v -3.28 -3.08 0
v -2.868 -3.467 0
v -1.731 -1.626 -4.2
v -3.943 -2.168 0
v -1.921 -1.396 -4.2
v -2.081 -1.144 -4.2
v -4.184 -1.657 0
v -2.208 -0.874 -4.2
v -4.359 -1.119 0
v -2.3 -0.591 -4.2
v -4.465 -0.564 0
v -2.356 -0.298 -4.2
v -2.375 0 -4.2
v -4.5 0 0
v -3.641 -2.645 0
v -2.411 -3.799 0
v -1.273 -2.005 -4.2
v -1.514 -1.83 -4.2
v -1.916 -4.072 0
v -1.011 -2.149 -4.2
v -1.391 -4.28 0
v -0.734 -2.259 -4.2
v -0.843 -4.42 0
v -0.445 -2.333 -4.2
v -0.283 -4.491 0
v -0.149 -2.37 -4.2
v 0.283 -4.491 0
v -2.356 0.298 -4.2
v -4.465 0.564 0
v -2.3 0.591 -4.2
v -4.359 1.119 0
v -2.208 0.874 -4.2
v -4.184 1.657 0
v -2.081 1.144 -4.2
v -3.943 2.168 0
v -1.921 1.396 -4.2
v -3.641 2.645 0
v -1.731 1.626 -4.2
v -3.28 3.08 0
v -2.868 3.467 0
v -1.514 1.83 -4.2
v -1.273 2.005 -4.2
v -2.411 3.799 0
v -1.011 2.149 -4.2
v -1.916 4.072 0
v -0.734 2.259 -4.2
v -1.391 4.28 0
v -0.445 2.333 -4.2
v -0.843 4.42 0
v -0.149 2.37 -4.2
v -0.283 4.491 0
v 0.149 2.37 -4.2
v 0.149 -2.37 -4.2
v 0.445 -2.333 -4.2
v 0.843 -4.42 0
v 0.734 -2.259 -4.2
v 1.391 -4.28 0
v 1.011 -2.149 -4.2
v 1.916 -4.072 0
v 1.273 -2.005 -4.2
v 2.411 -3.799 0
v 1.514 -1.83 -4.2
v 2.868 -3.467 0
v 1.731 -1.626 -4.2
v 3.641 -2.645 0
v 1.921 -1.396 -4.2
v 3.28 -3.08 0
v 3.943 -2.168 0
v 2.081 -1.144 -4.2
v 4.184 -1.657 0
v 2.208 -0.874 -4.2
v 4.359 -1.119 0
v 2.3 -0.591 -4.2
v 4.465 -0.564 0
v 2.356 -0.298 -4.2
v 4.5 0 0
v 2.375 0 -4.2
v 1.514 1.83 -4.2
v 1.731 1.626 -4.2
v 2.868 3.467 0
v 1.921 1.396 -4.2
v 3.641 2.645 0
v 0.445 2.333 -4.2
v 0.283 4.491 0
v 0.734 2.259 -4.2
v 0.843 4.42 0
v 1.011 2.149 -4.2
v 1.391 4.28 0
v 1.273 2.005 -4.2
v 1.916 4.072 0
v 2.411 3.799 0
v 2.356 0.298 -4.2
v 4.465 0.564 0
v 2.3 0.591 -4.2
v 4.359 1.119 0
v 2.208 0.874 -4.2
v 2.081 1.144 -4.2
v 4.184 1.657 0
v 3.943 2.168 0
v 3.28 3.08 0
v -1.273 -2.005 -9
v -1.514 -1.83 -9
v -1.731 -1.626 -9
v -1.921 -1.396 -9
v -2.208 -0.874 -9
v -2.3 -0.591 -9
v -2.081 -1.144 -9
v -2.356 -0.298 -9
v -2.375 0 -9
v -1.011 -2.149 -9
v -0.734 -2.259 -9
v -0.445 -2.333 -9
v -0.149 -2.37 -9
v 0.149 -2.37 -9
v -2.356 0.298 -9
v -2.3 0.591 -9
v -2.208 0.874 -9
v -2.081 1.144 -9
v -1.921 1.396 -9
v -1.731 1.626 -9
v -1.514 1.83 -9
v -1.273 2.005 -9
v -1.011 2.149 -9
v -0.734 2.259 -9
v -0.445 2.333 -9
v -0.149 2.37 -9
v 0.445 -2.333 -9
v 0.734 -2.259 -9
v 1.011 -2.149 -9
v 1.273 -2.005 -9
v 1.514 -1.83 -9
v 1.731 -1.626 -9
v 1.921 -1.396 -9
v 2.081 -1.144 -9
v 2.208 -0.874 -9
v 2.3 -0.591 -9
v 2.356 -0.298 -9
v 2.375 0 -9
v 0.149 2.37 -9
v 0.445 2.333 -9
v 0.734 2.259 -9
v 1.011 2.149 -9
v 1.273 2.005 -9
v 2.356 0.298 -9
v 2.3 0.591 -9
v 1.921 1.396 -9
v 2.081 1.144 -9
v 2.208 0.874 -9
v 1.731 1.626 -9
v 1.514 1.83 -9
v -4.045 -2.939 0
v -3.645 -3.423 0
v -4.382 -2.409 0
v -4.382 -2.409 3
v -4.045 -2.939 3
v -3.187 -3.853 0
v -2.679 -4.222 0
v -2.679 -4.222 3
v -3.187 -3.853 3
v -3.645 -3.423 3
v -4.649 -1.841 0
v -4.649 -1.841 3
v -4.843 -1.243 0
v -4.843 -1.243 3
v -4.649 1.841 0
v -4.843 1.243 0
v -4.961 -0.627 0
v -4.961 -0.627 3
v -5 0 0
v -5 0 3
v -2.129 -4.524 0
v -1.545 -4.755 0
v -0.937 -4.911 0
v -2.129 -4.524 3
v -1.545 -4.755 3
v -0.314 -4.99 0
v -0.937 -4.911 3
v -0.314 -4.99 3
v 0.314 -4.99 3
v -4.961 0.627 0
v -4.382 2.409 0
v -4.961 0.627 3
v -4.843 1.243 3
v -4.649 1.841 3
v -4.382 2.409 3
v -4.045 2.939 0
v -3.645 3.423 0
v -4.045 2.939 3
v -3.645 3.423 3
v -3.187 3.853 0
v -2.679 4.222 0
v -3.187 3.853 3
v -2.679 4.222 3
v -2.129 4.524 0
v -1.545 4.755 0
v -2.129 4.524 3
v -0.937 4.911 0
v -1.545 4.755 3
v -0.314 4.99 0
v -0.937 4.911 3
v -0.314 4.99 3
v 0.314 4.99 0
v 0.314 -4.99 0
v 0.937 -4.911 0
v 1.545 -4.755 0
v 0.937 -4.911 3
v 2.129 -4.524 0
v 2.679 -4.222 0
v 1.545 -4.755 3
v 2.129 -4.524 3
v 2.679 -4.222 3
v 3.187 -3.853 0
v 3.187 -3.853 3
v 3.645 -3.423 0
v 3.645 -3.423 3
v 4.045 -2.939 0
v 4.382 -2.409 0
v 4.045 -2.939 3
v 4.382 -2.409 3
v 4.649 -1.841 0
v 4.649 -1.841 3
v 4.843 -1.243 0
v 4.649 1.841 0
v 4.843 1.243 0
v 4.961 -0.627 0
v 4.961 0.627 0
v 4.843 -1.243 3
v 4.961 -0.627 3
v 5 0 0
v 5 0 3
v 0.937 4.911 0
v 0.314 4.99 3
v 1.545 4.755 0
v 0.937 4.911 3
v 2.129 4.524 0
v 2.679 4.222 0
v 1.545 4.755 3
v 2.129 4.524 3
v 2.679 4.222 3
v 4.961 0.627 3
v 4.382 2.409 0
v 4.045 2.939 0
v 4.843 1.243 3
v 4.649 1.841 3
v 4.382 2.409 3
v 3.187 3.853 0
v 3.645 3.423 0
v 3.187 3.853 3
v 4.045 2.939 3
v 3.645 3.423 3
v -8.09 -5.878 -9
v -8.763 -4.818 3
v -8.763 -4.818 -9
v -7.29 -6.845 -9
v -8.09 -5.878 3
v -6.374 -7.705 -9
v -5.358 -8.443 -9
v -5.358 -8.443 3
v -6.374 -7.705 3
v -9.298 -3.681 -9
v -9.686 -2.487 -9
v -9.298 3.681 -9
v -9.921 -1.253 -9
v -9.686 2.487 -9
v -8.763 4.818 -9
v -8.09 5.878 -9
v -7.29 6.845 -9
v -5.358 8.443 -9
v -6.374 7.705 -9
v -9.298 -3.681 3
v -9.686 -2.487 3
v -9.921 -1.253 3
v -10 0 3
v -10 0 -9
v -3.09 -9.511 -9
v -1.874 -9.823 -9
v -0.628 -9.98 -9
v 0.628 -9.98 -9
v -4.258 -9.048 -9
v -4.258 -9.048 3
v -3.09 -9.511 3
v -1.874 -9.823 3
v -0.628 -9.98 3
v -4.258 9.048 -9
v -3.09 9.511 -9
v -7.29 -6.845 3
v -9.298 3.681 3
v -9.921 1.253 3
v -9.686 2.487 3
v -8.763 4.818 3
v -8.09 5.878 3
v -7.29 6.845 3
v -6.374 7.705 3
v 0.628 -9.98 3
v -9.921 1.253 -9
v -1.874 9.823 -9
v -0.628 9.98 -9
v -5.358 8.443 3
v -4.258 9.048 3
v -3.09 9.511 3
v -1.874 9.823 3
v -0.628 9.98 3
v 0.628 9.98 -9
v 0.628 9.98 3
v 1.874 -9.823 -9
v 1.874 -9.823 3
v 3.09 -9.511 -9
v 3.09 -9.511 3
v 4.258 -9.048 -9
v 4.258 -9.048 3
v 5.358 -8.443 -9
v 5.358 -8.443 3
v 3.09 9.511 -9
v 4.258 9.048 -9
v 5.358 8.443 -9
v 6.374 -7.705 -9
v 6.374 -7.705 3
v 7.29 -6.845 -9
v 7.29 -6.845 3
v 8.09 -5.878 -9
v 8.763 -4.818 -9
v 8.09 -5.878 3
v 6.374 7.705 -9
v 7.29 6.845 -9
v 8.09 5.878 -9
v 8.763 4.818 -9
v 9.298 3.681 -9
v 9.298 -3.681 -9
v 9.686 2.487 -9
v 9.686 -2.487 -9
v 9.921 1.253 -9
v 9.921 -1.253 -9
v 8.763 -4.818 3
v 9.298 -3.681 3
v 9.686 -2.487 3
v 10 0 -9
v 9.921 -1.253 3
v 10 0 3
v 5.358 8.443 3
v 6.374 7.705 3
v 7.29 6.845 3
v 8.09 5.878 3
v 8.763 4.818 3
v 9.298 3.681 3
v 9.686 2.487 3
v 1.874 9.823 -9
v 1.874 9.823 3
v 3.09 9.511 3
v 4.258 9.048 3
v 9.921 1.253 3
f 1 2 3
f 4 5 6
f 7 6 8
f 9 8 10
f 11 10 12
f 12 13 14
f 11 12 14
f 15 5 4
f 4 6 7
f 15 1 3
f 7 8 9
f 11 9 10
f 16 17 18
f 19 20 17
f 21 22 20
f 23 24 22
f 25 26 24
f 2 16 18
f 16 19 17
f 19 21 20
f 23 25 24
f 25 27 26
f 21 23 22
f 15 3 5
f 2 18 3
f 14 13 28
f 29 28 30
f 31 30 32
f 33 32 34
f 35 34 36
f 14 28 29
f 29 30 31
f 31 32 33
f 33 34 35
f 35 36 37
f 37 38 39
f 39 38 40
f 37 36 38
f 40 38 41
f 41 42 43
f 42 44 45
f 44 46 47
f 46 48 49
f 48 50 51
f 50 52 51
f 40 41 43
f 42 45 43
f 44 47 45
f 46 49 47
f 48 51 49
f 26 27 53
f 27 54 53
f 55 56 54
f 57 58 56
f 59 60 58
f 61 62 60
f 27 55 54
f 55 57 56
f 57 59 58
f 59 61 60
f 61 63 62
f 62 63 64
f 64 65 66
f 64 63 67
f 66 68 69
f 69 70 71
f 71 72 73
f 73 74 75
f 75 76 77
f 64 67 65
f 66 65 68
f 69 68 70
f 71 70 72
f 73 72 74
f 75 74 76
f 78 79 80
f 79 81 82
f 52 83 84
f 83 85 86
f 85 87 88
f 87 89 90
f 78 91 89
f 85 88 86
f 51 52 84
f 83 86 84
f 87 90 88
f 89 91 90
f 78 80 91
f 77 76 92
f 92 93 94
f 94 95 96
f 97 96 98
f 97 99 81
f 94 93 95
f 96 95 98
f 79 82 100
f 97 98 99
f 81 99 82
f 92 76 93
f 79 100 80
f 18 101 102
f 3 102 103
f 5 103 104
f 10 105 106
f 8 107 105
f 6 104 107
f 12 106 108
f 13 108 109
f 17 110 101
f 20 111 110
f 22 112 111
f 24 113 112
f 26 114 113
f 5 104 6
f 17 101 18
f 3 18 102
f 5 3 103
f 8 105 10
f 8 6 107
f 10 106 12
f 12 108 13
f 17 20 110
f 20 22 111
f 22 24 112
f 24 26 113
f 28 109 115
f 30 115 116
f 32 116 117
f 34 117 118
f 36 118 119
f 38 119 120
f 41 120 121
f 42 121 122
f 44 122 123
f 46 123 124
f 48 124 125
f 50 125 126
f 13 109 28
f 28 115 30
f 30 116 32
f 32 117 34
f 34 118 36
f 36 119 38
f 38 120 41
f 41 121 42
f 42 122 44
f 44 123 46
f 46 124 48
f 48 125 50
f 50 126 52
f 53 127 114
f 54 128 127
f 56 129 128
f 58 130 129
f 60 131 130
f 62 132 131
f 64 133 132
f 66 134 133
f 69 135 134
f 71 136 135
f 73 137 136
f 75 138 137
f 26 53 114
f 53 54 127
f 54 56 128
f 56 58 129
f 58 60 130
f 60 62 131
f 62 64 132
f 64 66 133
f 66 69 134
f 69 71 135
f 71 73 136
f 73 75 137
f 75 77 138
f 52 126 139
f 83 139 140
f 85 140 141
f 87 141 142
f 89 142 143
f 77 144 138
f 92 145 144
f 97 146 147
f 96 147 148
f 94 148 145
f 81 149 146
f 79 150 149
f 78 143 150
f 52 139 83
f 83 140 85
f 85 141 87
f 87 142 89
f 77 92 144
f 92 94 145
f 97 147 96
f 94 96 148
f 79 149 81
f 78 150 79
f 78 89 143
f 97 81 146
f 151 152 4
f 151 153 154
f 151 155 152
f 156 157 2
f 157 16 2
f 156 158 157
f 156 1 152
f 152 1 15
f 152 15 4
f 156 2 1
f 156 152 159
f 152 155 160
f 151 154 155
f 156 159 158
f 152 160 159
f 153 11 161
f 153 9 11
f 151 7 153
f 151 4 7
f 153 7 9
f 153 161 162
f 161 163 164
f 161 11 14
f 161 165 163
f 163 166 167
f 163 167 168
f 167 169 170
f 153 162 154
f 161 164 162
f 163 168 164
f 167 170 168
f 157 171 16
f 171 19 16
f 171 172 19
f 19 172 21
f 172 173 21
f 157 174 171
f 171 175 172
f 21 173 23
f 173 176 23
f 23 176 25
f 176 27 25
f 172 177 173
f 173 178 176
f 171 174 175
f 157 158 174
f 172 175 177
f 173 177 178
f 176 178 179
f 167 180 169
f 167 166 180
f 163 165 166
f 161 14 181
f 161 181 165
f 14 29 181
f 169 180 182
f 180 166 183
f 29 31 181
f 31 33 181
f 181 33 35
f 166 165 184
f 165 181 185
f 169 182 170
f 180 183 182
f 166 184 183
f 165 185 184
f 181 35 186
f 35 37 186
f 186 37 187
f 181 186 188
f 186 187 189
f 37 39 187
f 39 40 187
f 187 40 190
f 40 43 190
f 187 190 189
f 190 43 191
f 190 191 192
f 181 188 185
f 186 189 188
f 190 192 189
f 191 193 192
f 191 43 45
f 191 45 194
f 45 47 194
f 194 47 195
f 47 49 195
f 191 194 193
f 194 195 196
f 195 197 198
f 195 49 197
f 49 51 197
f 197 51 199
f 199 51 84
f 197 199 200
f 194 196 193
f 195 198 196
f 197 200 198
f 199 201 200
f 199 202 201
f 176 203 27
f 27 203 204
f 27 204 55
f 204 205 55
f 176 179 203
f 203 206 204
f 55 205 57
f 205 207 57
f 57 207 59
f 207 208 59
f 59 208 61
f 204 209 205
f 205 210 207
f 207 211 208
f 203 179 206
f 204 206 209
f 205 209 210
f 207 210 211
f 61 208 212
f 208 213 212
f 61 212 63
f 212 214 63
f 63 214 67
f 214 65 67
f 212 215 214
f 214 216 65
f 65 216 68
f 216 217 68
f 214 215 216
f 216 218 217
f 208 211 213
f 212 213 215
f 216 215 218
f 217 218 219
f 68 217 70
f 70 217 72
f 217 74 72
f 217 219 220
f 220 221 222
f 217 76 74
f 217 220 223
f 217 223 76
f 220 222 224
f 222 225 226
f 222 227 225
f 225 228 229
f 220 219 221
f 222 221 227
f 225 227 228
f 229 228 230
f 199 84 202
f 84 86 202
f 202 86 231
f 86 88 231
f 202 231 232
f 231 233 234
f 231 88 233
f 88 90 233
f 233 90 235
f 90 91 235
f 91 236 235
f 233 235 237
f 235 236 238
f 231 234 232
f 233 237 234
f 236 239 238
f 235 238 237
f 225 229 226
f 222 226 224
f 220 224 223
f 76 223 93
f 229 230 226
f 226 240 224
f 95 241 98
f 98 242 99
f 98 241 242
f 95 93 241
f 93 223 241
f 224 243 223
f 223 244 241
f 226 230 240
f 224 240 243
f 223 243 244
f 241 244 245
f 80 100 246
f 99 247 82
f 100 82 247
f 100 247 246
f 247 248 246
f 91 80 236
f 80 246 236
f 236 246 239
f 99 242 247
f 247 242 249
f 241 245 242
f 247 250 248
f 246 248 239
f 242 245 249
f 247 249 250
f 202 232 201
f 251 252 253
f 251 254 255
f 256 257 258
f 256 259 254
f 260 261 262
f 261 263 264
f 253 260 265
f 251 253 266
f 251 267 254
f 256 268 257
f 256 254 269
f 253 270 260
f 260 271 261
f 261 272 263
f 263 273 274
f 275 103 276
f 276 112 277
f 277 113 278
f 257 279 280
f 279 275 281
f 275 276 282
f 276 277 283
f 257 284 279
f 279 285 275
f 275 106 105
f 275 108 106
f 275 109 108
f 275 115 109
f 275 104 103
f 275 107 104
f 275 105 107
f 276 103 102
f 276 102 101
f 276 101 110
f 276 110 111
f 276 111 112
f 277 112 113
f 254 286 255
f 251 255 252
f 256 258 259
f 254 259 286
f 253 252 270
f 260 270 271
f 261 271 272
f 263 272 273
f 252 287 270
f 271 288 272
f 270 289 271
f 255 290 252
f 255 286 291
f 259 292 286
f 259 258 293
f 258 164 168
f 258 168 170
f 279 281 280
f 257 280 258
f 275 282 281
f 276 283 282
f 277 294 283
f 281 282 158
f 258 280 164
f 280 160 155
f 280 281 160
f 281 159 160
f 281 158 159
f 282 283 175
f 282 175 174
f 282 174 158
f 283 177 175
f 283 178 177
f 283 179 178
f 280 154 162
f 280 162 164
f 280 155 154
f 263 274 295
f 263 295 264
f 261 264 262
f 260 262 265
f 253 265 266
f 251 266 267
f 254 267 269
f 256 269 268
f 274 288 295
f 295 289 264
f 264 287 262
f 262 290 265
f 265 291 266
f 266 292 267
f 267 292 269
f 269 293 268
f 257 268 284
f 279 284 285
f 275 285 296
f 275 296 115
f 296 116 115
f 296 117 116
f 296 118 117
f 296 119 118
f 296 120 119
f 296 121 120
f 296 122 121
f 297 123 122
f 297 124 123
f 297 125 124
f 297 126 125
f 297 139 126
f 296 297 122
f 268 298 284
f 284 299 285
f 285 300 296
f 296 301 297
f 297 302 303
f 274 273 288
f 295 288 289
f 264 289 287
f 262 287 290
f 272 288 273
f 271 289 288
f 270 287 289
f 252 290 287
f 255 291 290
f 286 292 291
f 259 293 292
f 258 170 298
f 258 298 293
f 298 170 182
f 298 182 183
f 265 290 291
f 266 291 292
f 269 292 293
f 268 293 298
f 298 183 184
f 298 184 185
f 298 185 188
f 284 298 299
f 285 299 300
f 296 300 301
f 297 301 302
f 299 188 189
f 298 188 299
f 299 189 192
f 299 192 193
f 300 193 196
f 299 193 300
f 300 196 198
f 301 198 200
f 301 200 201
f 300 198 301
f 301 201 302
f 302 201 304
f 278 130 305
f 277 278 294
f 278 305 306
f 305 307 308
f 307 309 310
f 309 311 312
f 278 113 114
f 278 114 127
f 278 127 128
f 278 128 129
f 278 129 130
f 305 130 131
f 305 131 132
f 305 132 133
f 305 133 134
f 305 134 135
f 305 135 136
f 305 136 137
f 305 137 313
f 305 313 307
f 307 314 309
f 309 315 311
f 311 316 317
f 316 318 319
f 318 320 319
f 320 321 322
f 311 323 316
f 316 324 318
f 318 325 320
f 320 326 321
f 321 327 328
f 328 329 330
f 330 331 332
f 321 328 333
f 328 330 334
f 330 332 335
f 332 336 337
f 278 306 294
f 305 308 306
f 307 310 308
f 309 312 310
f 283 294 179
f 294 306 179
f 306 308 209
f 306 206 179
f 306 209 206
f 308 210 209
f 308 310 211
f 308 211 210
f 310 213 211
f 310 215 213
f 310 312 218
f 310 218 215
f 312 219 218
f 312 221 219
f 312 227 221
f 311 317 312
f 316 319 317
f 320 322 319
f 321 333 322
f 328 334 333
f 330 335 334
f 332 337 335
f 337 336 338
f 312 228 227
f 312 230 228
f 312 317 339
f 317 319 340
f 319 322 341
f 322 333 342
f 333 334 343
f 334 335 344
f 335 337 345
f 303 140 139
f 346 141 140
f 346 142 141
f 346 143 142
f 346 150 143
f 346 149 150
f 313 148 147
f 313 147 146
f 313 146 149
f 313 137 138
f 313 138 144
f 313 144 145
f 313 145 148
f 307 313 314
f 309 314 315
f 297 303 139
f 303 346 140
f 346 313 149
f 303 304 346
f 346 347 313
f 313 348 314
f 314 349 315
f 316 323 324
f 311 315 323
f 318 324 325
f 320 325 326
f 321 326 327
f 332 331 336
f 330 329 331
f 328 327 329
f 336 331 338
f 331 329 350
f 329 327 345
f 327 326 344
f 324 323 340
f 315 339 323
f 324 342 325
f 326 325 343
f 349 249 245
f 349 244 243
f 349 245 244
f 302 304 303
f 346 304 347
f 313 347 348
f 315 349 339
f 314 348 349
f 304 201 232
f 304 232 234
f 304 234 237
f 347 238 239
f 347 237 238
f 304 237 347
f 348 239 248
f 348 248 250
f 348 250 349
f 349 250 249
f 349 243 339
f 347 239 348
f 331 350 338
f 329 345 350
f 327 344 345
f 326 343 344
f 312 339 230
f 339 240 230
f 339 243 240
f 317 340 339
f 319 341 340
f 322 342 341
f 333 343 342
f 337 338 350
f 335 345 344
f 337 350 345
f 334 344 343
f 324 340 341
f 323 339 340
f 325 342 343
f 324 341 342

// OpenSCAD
$fn = 50;

difference() {
	union() {
		translate(v = [0, 0, -9.0]) {
			cylinder(h = 12, r = 10.0);
		}
	}
	union() {
		translate(v = [0, 0, 0]) {
			rotate(a = [0, 0, 0]) {
				difference() {
					union() {
						translate(v = [0, 0, -12.0]) {
							cylinder(h = 12, r = 2.25);
						}
						translate(v = [0, 0, -4.2]) {
							cylinder(h = 4.2, r1 = 2.375, r2 = 4.5);
						}
						translate(v = [0, 0, -12.0]) {
							cylinder(h = 12, r = 2.375);
						}
						translate(v = [0, 0, -12.0]) {
							cylinder(h = 12, r = 2.25);
						}
					}
					union();
				}
			}
		}
		#cylinder(h = 3, r = 5.0);
	}
}
